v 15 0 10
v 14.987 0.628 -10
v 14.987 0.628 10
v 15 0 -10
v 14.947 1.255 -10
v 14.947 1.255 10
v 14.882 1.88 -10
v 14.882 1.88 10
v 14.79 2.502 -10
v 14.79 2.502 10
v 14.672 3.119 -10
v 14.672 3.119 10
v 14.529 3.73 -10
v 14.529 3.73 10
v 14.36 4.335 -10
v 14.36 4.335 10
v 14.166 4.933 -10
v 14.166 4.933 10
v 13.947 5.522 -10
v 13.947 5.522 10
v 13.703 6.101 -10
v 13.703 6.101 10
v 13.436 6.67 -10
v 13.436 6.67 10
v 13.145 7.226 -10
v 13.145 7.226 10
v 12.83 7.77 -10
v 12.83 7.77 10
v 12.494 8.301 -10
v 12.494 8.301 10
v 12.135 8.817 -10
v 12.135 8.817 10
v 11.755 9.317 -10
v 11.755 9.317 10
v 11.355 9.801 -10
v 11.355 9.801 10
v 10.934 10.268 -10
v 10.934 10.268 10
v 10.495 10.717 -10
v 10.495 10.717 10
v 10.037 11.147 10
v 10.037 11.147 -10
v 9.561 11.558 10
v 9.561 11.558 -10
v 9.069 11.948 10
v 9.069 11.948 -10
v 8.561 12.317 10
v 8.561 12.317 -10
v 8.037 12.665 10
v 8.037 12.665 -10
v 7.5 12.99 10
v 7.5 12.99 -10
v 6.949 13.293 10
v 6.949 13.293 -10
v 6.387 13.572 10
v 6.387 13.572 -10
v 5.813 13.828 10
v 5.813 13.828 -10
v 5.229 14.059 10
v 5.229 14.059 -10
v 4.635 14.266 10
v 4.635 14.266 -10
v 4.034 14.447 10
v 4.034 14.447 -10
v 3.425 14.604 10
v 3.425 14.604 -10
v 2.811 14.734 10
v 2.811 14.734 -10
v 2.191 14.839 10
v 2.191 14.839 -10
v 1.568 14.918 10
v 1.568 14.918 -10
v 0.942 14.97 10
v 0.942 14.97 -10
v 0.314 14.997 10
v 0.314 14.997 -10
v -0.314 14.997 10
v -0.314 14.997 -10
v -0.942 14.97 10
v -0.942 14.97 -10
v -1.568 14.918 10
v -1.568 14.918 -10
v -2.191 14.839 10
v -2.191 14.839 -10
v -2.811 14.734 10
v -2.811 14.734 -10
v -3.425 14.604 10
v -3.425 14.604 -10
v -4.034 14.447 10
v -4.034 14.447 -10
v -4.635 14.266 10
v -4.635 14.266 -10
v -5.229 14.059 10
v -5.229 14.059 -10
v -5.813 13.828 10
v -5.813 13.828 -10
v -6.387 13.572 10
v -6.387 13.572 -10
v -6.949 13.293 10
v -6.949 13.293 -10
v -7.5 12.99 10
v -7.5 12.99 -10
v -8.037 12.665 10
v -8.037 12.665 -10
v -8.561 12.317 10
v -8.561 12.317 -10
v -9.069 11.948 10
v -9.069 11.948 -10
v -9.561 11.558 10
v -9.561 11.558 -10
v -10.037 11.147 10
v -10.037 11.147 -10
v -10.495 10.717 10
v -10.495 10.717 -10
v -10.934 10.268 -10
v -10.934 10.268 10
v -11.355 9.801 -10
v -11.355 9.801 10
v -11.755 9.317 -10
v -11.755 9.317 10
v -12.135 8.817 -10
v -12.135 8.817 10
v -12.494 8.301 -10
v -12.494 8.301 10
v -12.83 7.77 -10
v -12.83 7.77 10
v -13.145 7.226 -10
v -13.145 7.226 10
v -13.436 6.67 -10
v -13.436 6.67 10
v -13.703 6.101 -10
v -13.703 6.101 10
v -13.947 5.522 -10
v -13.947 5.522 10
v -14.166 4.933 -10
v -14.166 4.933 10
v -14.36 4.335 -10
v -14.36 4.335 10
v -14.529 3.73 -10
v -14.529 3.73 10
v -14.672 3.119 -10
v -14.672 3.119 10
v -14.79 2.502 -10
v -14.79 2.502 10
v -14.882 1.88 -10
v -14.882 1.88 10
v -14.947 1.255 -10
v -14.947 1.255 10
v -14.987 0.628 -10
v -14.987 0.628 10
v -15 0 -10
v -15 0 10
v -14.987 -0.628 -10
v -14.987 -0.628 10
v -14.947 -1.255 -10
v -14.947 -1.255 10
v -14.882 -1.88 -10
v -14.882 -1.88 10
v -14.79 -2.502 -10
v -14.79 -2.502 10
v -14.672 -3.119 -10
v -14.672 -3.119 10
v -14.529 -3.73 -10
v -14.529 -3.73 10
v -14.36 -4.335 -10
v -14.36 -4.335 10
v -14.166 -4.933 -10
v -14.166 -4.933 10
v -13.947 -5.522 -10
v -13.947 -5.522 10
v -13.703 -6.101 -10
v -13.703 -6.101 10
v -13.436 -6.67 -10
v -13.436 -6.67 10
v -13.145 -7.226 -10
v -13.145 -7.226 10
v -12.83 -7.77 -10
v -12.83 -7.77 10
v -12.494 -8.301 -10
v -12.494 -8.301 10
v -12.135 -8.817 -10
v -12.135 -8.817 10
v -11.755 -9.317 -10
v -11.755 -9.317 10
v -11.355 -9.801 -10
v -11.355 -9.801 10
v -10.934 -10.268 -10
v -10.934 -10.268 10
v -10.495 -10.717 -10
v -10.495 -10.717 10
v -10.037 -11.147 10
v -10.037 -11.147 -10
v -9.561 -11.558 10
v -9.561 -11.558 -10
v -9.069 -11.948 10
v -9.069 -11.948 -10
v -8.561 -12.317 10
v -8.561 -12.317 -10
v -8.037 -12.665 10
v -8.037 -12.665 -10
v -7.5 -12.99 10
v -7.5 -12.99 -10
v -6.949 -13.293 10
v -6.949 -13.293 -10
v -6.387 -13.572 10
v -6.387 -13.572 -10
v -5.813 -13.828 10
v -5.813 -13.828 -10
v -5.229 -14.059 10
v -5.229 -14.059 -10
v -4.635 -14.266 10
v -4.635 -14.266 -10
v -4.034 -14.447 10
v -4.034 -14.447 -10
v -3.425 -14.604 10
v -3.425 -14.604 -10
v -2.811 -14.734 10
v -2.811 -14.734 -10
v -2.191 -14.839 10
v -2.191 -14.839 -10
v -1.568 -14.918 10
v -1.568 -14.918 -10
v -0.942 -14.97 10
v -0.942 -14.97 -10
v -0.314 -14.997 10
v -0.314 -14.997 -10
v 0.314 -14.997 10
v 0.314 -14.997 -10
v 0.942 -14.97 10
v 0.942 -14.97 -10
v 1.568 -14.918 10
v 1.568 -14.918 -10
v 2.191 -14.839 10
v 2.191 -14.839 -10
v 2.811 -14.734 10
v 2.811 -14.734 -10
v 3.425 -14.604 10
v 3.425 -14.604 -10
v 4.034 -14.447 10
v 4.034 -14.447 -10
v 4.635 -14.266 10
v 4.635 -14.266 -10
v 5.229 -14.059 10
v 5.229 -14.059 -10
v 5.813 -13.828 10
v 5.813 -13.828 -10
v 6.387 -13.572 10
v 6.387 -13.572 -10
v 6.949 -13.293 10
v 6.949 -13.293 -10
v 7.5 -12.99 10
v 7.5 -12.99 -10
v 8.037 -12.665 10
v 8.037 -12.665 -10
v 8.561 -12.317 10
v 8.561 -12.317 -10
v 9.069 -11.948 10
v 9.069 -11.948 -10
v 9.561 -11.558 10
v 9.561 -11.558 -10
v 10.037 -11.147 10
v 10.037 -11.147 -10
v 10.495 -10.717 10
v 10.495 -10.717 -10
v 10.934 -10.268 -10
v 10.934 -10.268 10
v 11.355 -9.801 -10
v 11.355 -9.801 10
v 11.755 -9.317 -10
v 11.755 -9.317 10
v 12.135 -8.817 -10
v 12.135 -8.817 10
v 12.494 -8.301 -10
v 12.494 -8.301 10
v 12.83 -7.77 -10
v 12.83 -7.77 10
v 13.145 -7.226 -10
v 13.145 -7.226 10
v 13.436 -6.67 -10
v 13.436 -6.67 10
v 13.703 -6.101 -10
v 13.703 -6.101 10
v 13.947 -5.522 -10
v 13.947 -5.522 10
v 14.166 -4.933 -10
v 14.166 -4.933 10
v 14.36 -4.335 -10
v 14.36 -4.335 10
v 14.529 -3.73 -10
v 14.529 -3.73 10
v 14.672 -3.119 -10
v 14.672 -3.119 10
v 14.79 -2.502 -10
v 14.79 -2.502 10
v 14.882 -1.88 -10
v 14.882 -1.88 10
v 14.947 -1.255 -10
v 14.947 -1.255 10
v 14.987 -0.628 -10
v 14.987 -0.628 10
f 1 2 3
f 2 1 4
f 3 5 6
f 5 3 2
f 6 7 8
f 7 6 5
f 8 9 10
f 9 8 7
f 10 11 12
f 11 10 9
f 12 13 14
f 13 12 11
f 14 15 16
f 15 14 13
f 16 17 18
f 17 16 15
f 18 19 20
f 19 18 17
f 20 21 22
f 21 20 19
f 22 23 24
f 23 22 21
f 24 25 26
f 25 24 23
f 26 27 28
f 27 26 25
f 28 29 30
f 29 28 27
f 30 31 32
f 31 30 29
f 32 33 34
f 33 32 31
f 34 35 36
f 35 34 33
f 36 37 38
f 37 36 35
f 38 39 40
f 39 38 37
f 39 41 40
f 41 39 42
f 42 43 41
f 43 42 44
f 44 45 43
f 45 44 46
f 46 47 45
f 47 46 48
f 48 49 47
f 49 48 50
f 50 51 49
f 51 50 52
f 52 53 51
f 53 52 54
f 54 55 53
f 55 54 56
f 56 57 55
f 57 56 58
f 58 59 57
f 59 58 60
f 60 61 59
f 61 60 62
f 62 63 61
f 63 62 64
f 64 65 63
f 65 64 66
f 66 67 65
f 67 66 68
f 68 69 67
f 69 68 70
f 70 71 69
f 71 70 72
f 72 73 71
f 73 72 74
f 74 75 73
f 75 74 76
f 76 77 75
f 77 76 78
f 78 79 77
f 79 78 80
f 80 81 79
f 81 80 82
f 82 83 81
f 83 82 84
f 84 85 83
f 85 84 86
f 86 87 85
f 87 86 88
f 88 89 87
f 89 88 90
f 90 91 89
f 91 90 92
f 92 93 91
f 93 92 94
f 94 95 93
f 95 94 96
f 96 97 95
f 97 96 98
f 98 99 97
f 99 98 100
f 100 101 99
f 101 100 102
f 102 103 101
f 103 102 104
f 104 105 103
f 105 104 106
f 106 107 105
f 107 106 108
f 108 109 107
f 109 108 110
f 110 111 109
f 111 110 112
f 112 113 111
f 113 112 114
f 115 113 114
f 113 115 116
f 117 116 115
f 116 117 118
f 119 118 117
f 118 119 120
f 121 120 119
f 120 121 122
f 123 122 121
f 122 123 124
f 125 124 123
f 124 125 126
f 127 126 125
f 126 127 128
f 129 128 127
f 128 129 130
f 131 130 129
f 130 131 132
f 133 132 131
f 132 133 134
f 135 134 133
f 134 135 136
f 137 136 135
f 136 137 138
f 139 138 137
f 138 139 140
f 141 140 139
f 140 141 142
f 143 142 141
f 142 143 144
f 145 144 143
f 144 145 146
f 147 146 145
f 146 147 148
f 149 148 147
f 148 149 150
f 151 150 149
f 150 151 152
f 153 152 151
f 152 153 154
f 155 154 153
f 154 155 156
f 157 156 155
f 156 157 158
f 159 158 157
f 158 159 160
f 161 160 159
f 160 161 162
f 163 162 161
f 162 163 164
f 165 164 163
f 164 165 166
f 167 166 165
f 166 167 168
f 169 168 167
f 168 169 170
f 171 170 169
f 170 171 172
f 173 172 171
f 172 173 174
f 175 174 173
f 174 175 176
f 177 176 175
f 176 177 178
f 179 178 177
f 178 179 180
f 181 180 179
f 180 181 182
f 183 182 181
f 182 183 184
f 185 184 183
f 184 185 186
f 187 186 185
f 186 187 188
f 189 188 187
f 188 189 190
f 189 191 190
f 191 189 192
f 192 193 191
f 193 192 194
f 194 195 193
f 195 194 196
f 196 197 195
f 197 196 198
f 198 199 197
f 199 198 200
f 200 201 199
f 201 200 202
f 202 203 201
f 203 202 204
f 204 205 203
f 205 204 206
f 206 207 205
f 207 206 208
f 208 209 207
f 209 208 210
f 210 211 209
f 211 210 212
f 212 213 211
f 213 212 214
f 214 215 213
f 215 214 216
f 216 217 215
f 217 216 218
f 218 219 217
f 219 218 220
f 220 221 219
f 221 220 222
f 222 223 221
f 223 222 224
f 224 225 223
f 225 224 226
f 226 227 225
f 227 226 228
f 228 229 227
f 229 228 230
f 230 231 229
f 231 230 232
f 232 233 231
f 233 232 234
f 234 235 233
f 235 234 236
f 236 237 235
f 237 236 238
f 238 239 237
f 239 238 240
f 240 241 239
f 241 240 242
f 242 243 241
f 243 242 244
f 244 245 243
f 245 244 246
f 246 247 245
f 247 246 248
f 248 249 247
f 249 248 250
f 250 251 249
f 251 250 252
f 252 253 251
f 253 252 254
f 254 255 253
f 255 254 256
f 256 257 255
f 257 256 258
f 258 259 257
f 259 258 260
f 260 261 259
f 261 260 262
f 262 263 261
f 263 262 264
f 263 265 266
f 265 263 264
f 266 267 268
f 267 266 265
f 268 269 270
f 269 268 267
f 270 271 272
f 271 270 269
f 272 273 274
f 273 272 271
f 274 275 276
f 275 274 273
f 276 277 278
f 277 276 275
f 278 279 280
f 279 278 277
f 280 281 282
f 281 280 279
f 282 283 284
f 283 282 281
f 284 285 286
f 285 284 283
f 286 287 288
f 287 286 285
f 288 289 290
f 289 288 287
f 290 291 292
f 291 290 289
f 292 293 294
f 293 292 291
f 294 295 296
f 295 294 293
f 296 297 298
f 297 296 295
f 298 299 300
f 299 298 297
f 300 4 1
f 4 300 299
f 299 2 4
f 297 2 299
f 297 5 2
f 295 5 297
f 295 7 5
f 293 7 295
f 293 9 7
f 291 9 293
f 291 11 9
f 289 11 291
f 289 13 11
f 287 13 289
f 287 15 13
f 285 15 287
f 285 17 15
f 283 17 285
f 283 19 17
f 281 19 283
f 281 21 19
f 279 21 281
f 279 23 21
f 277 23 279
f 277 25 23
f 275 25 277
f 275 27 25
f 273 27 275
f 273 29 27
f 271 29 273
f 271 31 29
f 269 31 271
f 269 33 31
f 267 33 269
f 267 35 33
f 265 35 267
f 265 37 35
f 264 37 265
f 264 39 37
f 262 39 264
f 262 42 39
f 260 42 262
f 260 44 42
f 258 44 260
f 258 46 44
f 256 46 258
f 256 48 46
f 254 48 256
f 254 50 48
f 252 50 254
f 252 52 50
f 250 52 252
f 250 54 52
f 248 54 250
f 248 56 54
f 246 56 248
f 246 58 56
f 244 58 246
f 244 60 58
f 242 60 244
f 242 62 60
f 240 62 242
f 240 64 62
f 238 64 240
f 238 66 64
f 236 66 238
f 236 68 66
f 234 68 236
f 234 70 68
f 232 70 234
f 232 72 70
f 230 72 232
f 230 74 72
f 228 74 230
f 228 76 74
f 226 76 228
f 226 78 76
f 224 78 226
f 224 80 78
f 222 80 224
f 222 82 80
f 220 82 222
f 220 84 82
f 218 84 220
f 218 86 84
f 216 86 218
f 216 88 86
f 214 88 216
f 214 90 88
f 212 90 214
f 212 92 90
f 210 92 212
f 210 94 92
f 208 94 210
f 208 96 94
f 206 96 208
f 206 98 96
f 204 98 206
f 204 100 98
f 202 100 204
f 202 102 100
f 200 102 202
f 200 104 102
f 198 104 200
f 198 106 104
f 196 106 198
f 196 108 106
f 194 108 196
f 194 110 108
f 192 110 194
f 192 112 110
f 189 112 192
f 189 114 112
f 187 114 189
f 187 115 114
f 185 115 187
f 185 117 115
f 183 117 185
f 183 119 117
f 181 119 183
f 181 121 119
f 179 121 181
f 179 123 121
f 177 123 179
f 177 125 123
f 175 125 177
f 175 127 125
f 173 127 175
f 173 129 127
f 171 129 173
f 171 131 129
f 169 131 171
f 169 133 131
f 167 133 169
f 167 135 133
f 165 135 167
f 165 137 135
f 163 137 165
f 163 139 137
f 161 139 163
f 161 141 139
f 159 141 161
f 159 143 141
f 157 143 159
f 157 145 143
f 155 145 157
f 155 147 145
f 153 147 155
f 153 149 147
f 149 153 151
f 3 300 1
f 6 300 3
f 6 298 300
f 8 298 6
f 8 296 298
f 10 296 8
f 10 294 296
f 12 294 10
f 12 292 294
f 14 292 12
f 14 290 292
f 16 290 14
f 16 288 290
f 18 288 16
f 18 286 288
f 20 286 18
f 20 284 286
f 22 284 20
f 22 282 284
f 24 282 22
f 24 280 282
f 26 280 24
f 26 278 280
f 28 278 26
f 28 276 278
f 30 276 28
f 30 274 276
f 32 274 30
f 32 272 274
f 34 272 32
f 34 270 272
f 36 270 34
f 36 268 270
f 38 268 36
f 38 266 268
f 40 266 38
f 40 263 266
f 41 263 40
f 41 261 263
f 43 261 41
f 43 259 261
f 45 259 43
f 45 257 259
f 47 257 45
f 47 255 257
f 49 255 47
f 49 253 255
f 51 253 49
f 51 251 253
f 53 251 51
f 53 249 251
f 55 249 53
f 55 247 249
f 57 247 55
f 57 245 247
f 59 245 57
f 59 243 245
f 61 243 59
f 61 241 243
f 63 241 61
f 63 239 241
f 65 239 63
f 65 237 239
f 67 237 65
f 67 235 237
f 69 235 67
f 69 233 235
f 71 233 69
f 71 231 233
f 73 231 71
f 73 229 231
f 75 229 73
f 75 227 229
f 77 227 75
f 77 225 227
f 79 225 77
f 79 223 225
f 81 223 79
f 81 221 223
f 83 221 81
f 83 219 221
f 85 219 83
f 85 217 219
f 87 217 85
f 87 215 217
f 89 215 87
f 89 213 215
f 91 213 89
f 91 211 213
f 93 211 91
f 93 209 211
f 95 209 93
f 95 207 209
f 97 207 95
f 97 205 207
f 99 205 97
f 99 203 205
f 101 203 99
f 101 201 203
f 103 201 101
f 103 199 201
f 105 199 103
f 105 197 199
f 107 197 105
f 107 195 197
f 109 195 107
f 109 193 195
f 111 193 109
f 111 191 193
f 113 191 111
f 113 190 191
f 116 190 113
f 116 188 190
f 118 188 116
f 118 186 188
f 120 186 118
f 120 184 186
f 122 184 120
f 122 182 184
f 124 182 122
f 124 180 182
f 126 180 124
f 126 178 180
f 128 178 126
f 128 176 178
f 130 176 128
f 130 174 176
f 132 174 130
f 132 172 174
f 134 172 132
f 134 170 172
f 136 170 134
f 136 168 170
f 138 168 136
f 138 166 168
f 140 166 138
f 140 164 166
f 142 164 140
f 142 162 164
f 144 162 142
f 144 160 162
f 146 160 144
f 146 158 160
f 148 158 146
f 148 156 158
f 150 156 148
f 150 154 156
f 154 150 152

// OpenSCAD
$fn = 150;

translate([0, 0, 0])
rotate([0, 0, 0])
cylinder(20, 15, 15, true);
